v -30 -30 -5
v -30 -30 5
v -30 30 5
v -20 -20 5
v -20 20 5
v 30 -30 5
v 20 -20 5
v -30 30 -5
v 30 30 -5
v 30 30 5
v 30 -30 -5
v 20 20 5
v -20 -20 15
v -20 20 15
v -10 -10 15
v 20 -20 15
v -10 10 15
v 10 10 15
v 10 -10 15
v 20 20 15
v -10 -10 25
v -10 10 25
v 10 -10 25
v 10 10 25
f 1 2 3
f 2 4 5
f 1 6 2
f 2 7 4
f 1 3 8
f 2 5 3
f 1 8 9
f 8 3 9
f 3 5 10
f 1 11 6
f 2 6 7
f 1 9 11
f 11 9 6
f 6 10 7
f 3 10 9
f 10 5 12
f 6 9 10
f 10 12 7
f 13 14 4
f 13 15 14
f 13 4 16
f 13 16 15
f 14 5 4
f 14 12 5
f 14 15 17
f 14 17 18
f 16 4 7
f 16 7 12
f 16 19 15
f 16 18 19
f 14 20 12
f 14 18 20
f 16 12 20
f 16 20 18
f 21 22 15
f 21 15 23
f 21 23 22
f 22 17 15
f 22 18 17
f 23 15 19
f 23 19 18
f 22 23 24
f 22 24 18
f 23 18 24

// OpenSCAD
union() {
    cube([60, 60, 10], center = true);
    translate([0, 0, 10])
        cube([40, 40, 10], center = true);
    translate([0, 0, 20])
        cube([20, 20, 10], center = true);
}
